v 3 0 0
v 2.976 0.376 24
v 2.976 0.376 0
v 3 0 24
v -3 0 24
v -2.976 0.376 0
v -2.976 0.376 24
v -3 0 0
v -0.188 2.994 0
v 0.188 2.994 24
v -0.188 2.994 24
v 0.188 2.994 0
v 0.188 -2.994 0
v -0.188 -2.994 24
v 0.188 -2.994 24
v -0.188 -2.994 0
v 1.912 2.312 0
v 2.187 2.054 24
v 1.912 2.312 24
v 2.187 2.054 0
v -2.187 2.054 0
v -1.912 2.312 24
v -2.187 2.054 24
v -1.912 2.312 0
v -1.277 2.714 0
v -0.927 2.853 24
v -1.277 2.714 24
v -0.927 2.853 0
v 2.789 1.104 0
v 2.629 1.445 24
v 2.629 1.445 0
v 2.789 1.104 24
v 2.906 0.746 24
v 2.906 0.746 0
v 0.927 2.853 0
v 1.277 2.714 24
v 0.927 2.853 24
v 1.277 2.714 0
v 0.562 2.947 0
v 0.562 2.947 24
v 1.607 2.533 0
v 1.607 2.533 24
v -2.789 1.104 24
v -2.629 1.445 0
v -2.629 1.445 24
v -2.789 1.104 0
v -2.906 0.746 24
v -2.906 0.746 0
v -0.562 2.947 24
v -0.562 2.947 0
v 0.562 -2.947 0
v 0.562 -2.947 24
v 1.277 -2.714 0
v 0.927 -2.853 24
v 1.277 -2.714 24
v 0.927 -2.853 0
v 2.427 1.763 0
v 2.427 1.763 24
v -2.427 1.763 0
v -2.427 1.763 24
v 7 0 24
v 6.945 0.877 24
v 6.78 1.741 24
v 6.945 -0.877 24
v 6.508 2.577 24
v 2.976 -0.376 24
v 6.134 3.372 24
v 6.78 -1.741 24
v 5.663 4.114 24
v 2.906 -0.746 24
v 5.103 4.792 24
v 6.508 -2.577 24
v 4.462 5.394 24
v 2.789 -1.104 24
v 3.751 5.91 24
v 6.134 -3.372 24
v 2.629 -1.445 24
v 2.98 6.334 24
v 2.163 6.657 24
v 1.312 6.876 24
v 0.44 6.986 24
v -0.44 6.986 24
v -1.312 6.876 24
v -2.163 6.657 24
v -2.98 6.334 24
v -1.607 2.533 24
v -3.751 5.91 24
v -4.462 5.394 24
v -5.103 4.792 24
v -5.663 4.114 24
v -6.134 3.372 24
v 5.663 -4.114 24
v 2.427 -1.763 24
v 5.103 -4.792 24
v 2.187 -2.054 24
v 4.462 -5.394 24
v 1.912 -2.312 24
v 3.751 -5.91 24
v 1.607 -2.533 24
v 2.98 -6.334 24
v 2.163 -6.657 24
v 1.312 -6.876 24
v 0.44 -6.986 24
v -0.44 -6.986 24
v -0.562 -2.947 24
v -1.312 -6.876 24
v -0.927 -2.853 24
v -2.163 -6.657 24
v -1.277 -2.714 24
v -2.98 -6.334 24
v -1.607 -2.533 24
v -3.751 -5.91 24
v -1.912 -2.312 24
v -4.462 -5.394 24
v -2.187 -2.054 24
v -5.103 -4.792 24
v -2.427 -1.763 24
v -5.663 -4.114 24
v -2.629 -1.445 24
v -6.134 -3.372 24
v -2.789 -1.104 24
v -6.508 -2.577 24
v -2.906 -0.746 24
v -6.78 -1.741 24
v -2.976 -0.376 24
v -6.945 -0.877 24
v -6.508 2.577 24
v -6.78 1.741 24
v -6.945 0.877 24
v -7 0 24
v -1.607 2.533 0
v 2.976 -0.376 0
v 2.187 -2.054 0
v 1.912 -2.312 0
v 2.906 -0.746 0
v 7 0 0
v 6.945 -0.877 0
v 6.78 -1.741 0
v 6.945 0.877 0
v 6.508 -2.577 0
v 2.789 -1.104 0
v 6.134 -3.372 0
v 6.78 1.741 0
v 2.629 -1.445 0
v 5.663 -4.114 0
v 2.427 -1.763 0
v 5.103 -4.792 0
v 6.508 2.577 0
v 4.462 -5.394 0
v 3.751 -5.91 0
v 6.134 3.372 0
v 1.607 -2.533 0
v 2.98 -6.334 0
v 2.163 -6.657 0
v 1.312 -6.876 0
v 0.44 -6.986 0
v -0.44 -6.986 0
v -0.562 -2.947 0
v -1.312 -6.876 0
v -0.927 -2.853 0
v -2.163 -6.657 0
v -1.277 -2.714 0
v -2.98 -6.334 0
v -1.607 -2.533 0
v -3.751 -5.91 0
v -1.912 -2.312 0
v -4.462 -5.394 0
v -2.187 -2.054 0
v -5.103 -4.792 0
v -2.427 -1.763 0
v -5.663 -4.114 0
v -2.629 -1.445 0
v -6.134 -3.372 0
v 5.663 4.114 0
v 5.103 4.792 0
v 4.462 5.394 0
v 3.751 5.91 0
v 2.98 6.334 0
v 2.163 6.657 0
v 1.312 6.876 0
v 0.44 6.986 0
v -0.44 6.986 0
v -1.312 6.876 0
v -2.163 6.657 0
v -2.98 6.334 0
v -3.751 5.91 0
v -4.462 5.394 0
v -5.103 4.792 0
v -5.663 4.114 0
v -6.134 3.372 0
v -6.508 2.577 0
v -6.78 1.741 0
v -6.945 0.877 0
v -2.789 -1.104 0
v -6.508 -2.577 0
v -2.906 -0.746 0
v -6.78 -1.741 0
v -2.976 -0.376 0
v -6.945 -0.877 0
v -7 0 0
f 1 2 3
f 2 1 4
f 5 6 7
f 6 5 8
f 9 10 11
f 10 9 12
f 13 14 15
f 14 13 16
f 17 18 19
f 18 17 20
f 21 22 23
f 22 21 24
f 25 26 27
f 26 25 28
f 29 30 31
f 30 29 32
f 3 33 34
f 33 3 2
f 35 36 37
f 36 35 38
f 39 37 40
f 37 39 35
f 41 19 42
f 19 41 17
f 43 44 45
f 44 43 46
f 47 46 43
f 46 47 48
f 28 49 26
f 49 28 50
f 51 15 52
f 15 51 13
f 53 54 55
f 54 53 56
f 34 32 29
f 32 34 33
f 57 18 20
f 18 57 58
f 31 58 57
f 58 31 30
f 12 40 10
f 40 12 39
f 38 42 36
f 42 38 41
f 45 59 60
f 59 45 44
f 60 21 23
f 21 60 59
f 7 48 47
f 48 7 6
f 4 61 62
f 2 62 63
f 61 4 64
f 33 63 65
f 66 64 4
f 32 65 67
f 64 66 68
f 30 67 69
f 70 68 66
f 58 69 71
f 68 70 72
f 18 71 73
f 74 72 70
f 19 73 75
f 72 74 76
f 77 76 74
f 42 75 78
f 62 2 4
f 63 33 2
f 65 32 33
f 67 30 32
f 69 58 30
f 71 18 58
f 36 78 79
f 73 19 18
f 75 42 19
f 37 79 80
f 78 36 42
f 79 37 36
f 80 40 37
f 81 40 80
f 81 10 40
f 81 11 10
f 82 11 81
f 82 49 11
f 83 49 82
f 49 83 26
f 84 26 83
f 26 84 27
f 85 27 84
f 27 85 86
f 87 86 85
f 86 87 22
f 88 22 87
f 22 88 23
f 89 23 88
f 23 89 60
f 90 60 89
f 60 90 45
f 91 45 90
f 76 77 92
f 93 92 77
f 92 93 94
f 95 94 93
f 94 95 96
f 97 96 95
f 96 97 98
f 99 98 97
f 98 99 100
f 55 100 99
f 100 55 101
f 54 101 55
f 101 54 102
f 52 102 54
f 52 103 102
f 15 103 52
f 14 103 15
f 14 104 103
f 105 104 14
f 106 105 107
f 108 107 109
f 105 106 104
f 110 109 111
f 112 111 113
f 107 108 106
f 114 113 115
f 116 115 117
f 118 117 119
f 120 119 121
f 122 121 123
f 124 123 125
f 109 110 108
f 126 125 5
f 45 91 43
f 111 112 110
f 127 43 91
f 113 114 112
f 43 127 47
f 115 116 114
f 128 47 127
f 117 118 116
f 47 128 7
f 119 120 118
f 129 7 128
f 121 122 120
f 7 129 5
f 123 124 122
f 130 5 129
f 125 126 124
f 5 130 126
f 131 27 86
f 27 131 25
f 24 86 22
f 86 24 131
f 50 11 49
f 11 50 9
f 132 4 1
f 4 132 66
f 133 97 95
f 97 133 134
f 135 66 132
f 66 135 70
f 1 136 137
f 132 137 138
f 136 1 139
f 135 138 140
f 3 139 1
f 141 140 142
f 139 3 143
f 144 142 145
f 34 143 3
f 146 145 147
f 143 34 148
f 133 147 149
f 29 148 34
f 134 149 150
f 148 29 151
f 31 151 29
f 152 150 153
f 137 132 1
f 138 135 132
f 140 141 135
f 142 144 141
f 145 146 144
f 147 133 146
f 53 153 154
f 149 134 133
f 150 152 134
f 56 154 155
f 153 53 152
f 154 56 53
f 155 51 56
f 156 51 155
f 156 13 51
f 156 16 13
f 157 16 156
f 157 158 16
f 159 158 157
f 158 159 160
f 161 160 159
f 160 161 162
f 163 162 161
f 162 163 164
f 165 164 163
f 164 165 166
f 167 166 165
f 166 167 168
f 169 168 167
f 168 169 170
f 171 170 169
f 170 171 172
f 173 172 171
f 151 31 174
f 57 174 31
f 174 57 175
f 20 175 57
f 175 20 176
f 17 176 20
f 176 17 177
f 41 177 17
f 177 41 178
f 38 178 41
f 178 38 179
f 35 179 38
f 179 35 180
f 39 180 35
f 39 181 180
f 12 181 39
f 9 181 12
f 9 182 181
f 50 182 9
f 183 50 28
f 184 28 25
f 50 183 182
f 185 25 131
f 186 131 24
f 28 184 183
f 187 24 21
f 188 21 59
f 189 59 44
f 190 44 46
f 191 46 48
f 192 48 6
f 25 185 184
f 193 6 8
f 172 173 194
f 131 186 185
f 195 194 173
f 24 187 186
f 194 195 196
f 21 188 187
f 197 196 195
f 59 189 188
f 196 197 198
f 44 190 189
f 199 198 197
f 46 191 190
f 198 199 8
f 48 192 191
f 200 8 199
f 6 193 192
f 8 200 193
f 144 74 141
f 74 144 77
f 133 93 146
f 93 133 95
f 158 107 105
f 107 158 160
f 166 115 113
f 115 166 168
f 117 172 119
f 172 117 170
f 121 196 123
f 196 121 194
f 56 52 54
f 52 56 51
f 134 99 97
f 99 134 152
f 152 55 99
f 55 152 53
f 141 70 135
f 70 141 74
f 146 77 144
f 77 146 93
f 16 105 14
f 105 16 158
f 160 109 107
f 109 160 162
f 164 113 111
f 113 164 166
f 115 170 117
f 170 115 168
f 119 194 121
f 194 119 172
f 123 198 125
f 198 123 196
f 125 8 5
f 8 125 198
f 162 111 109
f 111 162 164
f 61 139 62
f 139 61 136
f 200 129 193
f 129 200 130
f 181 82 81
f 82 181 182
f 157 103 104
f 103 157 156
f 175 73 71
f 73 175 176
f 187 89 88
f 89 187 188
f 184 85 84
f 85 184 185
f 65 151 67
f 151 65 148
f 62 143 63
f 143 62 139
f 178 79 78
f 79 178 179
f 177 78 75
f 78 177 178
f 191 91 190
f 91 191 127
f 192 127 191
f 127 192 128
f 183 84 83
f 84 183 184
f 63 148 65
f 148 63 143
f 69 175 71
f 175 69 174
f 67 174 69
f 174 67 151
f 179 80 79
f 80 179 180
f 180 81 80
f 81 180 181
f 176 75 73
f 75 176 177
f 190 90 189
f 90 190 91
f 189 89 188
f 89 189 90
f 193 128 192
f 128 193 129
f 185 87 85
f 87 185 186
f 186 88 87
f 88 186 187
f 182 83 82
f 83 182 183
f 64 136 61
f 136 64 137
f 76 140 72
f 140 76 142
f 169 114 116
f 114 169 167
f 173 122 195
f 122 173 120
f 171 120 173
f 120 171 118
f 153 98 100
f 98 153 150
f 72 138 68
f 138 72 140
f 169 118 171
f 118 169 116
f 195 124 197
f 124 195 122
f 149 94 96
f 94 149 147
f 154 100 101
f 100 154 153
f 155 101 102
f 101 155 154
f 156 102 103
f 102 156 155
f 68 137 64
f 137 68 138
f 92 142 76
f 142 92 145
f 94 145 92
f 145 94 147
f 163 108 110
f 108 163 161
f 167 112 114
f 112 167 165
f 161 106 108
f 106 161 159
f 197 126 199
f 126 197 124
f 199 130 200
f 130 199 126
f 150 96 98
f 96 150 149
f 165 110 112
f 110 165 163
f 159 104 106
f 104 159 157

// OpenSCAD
$fn = 50;


difference() {
	union() {
		cylinder(h = 24, r = 7.0000000000);
	}
	union() {
		translate(v = [0, 0, -100]) {
			cylinder(h = 200, r = 3.0000000000);
		}
		translate(v = [0, 0, -100]) {
			cylinder(h = 200, r = 1.5000000000);
		}
	}
}
